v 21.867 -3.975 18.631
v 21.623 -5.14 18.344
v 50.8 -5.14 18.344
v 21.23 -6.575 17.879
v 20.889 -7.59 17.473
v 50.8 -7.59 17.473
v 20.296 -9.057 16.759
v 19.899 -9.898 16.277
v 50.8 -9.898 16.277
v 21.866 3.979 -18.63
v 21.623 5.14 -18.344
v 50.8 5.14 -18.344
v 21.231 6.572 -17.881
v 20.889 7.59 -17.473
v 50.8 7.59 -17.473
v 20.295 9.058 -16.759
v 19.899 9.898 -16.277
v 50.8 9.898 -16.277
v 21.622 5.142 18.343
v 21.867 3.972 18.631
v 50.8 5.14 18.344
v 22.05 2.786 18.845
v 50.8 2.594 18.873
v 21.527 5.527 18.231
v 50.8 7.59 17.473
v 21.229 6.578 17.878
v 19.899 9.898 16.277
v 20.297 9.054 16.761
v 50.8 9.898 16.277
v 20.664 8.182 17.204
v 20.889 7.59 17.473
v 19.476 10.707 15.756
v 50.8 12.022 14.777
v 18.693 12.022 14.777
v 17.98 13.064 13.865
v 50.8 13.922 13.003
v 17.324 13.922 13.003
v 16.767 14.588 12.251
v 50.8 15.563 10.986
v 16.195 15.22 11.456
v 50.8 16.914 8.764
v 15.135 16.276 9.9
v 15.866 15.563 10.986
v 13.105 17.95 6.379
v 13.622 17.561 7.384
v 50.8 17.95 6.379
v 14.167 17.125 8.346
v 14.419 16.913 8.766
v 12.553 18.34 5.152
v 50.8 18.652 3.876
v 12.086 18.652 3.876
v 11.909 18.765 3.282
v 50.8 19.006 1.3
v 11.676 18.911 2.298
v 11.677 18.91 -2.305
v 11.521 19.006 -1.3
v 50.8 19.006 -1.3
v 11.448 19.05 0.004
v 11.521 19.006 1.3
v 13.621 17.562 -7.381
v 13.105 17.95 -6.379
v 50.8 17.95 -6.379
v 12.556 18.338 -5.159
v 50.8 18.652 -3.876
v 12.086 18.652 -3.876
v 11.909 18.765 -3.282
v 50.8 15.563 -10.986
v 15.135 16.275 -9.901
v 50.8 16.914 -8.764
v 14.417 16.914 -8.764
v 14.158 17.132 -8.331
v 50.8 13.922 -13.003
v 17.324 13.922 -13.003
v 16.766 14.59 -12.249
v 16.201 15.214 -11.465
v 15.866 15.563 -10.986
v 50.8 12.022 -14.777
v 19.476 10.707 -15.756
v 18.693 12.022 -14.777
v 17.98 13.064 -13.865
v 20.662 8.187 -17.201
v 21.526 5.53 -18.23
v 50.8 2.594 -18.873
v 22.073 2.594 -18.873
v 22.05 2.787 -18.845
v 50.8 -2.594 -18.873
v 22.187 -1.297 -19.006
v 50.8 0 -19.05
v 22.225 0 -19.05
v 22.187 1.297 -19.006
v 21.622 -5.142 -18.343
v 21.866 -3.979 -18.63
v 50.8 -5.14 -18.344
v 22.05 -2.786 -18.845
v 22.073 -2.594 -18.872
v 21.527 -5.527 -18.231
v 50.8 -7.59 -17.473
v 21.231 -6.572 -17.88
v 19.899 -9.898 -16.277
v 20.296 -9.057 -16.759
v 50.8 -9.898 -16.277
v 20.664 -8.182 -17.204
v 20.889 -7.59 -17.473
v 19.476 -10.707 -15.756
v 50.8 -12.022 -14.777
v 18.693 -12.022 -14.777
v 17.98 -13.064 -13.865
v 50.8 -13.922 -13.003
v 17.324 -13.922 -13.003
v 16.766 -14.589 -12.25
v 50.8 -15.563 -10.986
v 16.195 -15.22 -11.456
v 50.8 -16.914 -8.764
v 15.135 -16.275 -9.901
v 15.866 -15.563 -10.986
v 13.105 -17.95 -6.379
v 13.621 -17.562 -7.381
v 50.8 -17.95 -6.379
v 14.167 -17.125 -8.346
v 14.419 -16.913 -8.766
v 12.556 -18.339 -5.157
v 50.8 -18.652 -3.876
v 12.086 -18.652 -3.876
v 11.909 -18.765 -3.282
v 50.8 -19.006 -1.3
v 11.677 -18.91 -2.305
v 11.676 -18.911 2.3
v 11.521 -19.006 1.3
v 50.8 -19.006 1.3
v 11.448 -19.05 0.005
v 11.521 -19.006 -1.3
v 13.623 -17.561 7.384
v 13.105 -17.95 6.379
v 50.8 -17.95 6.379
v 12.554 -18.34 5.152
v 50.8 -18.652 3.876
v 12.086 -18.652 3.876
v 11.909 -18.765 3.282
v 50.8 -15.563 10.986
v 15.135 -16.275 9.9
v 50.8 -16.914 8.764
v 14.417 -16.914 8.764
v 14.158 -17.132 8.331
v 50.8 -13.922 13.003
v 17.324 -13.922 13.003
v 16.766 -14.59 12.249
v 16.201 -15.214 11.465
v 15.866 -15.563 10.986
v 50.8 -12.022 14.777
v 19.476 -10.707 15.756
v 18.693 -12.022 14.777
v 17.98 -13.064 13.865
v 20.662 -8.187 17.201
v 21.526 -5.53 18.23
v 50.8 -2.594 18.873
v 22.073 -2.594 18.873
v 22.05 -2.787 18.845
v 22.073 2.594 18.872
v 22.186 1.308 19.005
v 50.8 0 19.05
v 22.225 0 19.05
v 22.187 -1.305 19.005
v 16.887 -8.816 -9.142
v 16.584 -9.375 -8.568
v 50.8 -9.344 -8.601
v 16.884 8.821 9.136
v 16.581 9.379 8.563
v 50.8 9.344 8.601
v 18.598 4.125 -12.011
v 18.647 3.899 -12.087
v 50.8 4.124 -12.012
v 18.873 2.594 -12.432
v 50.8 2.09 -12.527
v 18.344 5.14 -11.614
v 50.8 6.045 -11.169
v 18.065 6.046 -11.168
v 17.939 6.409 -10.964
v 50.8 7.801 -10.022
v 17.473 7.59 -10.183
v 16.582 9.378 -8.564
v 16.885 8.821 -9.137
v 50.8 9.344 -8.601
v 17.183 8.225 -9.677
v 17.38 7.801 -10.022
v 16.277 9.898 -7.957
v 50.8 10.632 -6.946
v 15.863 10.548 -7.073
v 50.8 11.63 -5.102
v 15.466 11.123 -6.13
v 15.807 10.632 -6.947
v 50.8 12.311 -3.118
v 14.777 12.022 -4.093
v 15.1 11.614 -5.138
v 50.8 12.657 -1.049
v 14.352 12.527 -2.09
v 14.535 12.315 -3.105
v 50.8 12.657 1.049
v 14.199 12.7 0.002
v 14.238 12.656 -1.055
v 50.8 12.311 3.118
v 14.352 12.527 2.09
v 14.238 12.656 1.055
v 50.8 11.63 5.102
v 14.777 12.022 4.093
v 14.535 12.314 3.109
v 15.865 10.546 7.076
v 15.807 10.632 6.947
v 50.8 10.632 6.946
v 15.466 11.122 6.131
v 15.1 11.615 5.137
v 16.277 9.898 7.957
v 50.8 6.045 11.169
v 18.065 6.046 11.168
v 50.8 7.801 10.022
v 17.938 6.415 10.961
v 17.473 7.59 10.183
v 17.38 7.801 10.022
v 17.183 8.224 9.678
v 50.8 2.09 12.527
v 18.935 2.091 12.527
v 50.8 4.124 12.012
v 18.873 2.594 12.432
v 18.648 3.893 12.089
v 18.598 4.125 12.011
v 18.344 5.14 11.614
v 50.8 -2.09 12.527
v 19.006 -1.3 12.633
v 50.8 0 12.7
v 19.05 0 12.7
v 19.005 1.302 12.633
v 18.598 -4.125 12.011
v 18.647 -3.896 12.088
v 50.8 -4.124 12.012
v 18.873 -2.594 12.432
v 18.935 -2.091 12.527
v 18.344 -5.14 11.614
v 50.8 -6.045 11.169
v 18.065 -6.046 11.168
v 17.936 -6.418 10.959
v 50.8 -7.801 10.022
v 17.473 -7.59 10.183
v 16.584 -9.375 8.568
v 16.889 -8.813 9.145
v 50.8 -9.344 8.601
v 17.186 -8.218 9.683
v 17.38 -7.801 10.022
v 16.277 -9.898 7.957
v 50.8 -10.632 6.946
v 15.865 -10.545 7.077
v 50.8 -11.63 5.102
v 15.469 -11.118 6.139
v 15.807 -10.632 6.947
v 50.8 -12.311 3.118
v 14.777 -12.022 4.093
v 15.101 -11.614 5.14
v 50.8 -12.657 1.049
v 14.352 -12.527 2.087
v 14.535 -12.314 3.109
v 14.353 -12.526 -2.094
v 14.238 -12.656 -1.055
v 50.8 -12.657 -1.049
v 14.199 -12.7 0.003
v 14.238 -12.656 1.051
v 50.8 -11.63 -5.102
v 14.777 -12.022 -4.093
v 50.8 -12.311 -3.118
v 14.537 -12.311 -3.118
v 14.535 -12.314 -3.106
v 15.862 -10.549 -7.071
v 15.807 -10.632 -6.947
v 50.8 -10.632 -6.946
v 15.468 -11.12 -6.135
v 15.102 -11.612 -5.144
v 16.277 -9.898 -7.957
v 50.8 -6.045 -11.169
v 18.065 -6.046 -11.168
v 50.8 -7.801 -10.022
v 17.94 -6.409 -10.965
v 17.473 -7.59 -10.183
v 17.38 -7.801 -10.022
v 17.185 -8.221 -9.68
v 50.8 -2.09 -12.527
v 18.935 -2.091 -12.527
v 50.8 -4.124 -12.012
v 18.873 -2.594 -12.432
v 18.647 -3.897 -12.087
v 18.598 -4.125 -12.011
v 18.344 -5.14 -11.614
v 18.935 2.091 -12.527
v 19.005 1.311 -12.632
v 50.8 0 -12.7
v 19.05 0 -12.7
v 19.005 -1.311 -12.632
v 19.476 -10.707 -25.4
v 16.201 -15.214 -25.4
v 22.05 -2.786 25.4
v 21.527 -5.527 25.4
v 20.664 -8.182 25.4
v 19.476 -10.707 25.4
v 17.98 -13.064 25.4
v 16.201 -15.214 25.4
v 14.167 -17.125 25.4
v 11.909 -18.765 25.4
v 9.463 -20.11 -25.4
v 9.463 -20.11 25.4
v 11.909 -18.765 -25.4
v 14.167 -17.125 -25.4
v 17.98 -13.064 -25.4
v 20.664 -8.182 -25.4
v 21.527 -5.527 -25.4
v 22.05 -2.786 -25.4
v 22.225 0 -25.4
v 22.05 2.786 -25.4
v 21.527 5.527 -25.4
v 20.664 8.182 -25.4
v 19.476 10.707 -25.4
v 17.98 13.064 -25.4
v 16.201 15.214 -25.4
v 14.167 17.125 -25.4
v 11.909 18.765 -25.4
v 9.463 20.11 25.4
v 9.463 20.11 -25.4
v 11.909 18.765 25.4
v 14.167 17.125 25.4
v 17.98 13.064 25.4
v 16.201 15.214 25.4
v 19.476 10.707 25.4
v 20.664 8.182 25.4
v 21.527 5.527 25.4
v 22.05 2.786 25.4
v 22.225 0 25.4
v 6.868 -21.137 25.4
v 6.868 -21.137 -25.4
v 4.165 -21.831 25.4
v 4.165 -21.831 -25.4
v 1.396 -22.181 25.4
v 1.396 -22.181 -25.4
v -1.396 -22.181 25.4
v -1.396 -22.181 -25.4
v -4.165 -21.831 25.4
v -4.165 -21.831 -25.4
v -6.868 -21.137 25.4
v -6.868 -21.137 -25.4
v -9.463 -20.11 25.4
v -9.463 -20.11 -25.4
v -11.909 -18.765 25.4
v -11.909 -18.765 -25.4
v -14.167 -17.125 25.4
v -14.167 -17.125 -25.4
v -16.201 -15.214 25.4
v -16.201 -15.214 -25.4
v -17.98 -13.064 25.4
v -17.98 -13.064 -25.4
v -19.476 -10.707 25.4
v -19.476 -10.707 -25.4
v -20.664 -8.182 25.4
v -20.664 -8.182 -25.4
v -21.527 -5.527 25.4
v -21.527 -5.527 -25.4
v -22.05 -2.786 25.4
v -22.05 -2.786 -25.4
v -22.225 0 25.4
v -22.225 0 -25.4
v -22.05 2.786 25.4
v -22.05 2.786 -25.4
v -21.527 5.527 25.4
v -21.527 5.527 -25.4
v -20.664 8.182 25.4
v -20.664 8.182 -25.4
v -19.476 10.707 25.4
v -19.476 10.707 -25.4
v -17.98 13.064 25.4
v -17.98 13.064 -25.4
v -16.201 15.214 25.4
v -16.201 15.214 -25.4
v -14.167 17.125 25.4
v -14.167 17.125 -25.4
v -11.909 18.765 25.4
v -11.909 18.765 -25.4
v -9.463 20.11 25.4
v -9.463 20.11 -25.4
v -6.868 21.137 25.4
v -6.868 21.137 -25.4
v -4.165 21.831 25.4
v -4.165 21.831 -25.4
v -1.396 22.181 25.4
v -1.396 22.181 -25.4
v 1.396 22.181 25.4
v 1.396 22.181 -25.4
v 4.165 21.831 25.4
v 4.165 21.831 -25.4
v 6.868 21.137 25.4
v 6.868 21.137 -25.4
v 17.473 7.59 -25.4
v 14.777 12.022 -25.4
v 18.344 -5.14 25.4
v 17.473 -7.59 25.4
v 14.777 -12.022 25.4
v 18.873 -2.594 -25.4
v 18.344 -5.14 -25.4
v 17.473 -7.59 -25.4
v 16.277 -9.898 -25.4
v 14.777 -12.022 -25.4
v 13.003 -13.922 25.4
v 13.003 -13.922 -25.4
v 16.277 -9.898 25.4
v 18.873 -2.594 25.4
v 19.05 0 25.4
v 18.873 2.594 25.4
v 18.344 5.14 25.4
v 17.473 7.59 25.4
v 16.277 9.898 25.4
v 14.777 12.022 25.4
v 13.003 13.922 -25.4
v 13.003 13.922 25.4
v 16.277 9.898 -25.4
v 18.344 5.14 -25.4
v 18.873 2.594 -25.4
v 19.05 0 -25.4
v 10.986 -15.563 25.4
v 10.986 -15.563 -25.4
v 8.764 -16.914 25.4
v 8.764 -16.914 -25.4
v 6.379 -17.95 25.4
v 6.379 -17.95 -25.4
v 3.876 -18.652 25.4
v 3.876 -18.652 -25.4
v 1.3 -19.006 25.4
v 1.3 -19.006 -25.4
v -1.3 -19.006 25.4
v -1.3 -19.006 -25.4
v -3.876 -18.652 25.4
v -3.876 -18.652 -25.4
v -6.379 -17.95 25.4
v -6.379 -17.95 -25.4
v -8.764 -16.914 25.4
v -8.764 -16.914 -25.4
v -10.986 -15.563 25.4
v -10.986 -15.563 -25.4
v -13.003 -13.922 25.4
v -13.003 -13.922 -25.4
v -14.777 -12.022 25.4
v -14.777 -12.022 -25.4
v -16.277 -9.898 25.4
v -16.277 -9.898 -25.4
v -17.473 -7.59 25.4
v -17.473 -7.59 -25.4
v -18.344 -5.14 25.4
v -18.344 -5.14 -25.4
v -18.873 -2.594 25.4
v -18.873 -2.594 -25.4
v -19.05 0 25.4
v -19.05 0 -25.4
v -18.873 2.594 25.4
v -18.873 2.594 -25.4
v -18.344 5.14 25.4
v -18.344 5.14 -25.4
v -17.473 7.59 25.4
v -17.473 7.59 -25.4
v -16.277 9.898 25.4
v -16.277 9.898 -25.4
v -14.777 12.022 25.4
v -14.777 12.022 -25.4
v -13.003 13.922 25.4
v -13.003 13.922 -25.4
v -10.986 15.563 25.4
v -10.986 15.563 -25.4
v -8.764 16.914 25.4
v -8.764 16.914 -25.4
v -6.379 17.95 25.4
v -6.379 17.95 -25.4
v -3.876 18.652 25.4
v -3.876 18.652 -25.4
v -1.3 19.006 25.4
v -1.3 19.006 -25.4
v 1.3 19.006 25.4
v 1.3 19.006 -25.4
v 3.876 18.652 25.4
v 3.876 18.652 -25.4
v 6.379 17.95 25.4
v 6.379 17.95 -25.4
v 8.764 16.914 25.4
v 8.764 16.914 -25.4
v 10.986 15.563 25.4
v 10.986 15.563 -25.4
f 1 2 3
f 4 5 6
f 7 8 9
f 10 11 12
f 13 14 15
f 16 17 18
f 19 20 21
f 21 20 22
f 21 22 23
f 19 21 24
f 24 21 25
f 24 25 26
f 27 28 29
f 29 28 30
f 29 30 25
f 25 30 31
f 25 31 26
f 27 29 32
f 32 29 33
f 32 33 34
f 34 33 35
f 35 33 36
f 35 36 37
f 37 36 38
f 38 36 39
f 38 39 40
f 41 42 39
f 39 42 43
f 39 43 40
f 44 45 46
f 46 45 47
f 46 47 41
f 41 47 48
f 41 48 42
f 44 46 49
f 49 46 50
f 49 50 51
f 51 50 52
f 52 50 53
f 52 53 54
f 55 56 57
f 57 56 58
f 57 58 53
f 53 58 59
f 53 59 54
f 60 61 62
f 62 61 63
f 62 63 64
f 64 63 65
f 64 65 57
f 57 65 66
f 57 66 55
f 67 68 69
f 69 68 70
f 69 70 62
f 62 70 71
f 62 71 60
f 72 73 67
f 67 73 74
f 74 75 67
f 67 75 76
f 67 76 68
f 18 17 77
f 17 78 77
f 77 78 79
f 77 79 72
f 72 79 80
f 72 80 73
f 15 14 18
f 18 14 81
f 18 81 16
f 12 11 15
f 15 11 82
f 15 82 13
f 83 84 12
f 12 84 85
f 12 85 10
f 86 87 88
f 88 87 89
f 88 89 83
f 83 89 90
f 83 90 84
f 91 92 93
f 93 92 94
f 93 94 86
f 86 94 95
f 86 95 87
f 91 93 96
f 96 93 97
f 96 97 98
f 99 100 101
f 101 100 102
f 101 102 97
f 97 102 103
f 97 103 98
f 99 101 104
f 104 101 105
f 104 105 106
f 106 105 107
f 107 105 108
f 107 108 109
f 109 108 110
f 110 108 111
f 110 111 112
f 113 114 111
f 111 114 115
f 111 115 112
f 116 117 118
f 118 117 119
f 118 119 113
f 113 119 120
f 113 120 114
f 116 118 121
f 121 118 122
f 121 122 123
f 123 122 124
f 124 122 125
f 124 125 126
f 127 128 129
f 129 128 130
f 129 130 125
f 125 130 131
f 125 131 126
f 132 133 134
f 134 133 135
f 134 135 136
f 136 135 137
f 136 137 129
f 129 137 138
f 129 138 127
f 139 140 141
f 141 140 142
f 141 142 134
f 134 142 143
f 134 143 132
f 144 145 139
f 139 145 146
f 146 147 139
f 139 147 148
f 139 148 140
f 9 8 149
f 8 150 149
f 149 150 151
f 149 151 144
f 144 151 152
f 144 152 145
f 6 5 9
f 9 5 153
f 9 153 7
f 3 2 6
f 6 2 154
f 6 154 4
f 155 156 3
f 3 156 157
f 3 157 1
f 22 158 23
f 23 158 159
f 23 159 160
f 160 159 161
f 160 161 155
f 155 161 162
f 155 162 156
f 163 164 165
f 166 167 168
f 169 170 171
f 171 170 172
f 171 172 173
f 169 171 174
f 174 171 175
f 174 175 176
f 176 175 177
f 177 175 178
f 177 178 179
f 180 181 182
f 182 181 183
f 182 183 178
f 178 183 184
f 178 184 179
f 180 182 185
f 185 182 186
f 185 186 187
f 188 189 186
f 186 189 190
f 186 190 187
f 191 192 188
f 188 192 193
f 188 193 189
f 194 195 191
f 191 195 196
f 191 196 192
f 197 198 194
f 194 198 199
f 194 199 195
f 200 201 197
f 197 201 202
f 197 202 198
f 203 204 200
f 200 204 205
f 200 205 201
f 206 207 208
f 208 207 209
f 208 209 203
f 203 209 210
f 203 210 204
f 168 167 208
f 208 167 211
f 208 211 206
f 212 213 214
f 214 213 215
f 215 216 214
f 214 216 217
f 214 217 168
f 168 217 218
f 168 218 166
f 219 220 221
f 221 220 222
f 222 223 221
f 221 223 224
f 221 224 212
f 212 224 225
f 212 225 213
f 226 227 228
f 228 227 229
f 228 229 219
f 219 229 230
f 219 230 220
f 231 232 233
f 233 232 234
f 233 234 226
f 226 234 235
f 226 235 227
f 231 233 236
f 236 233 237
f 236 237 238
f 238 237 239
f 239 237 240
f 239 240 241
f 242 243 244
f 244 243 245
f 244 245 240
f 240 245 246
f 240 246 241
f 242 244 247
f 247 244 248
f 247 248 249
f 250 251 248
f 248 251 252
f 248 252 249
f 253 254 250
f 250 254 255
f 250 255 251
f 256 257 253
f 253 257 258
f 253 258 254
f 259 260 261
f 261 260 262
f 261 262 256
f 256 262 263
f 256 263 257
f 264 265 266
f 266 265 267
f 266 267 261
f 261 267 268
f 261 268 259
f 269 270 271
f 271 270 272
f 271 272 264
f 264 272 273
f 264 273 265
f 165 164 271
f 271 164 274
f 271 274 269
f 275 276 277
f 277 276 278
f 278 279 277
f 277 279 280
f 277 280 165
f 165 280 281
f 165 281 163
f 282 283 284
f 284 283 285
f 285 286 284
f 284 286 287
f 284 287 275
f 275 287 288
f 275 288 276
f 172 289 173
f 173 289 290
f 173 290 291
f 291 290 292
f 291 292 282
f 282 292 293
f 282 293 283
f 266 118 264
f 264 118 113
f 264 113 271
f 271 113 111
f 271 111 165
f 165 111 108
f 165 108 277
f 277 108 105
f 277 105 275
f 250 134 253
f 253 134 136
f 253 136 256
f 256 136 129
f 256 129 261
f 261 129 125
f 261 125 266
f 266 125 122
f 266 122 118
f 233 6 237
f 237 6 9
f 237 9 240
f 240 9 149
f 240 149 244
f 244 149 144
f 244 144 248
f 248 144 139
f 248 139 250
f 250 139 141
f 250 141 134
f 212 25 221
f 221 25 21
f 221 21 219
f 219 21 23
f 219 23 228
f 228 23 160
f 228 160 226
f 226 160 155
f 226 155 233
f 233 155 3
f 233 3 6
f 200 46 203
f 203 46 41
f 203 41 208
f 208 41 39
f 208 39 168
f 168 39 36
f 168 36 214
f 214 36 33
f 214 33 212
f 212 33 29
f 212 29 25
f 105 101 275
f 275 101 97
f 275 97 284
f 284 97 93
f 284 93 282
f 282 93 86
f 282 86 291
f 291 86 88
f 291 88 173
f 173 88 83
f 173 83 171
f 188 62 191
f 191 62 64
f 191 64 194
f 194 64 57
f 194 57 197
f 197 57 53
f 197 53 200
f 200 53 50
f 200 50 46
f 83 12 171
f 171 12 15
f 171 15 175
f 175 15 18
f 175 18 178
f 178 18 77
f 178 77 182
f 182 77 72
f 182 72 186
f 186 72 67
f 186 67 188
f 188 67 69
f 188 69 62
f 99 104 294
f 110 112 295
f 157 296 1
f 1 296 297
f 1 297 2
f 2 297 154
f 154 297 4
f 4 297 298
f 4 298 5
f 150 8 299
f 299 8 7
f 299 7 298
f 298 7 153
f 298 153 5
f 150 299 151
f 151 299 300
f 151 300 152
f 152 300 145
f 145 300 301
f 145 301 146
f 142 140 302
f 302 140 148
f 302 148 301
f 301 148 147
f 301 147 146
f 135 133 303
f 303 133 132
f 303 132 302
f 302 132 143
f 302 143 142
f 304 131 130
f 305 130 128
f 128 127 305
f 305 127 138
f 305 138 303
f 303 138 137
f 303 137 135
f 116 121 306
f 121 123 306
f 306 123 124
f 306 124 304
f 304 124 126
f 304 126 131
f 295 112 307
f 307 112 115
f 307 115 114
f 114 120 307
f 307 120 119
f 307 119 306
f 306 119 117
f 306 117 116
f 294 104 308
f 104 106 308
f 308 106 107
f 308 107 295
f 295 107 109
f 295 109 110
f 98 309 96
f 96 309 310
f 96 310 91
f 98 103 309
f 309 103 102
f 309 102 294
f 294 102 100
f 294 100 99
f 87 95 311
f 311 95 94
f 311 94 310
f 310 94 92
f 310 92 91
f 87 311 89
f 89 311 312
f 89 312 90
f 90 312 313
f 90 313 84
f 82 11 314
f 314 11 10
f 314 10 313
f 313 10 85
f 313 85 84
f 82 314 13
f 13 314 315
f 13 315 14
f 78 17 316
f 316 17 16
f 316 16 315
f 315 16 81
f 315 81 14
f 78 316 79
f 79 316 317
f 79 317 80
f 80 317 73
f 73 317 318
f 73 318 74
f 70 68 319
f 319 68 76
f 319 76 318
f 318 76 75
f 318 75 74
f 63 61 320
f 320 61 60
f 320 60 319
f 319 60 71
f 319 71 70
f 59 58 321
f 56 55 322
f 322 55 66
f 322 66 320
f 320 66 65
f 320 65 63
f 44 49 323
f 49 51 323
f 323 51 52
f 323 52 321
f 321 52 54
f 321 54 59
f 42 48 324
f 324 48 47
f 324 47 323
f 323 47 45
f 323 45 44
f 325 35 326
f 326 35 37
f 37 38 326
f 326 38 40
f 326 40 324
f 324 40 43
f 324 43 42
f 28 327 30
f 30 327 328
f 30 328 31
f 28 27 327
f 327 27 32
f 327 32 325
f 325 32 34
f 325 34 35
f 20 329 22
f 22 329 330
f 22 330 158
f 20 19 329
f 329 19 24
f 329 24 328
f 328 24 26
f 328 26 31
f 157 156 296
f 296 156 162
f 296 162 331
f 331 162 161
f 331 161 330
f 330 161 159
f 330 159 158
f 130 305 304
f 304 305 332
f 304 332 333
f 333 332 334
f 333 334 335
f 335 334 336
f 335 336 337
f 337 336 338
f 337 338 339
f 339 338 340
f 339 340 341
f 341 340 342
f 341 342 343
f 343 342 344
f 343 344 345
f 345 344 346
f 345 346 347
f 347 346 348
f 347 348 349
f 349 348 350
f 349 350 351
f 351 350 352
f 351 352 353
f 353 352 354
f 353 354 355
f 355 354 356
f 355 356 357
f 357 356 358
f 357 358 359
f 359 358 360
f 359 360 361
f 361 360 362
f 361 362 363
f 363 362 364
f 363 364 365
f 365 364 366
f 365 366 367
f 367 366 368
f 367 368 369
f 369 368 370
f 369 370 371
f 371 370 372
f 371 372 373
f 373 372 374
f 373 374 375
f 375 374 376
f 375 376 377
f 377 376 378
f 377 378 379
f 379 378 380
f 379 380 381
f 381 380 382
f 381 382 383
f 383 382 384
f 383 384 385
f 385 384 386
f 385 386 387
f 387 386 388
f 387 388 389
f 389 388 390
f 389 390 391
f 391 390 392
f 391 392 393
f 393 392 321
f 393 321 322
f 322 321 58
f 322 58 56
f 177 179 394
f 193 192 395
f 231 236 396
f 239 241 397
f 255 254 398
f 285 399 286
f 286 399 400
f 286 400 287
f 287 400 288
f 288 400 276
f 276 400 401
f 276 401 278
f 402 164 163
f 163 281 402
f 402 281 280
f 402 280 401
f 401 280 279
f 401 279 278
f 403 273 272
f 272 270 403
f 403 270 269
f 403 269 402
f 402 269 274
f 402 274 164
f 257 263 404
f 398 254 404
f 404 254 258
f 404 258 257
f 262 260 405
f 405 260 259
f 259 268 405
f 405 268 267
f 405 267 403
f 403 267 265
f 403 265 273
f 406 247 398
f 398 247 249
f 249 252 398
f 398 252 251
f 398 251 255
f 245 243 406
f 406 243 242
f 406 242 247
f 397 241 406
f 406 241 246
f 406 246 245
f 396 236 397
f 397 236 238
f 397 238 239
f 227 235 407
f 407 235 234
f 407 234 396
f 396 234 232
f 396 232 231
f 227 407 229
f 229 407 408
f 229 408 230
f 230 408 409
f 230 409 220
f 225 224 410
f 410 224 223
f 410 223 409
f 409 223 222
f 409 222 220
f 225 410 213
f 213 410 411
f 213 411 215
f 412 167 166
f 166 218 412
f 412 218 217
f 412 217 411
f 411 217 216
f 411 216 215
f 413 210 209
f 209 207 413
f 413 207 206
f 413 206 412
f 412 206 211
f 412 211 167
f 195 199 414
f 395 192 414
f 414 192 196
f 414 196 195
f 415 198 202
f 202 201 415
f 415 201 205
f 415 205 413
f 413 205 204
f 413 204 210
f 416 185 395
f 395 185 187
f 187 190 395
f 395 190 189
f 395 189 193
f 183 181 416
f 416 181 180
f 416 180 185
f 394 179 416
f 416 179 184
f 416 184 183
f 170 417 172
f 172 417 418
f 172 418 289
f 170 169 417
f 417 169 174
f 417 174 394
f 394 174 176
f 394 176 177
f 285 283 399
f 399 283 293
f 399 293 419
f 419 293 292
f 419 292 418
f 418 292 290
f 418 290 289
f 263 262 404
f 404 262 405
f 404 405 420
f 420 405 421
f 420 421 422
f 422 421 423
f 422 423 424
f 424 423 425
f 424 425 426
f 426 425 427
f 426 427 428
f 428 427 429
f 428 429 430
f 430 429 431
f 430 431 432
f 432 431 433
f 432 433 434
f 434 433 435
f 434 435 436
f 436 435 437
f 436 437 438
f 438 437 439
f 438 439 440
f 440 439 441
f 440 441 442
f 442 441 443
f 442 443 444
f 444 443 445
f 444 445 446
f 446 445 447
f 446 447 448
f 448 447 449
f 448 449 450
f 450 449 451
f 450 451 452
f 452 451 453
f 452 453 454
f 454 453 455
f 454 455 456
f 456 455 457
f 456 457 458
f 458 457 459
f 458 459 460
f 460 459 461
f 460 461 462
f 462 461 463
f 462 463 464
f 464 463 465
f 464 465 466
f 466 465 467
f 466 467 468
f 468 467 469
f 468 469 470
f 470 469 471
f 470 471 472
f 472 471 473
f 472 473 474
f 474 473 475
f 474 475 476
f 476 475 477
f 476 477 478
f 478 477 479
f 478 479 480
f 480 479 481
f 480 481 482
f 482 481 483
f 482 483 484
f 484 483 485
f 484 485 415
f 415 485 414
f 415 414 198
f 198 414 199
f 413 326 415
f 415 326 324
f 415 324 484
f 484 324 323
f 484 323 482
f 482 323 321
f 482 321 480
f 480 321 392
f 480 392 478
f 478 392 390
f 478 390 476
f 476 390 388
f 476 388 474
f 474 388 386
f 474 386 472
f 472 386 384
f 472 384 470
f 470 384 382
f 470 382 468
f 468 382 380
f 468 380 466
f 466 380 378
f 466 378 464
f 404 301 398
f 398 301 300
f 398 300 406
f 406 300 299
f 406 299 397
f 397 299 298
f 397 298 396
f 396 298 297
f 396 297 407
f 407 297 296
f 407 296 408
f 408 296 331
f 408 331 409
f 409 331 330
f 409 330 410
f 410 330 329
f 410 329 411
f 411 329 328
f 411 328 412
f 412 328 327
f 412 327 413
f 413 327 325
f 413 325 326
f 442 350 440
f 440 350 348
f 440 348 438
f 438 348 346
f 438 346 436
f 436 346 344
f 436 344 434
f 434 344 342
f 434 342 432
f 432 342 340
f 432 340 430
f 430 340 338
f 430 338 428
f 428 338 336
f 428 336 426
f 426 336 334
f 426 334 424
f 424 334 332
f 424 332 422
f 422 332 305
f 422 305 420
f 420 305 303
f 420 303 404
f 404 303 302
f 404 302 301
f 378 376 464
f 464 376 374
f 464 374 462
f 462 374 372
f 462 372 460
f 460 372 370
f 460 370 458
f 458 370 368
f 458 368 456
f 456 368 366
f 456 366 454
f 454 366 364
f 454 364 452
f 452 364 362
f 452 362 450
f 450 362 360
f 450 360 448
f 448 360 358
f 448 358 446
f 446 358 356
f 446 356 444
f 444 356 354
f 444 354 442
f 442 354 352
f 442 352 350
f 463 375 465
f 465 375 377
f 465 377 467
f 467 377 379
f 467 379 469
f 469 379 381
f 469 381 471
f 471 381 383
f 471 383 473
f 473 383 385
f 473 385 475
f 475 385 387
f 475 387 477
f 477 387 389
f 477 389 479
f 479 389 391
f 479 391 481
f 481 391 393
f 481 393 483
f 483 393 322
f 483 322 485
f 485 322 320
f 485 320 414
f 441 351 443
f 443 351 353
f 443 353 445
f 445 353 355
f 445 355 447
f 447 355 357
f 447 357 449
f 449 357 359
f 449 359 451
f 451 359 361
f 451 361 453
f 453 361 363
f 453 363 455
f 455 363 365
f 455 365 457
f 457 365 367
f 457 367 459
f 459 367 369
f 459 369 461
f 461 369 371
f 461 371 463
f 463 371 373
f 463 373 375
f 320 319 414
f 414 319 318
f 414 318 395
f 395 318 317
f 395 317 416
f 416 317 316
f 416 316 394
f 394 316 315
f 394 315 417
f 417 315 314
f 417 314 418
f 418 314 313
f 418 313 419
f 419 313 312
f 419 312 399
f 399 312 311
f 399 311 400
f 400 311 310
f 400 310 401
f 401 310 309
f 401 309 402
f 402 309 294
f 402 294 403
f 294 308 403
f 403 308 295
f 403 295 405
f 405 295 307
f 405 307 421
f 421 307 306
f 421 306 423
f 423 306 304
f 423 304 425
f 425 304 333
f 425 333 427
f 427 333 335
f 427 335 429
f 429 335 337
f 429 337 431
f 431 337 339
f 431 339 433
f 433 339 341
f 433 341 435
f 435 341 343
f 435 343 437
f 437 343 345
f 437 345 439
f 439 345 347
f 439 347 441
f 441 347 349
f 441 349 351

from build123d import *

# Parameters (mm, degrees)
SKETCH1_R           = 19.05
SKETCH1_R_2         = 12.7
BOSS_EXTRUDE1_DEPTH = 50.8
SKETCH2_R           = 22.225
SKETCH2_R_2         = 19.05
BOSS_EXTRUDE2_DEPTH = 25.4
CUT_EXTRUDE1_START  = -50.8
SKETCH3_R           = 19.05
CUT_EXTRUDE1_DEPTH  = 50.8
CUT_EXTRUDE2_START  = -50.8
SKETCH4_R           = 12.7
CUT_EXTRUDE2_DEPTH  = 50.8


with BuildPart() as part:
    # Sketch1 → Boss-Extrude1 (new body)
    with BuildSketch(Plane.YZ):
        with Locations(Location((0, 0, 0), (0, 0, 270))):
            Circle(SKETCH1_R)
        with Locations(Location((0, 0, 0), (0, 0, 270))):
            Circle(SKETCH1_R_2, mode=Mode.SUBTRACT)
    extrude(amount=BOSS_EXTRUDE1_DEPTH)

    # Sketch2 → Boss-Extrude2 (add, symmetric)
    with BuildSketch(Plane(origin=(0, 0, 0), x_dir=(0, 1, 0), z_dir=(0, 0, 1))):
        with Locations(Location((0, 0, 0), (0, 0, 270))):
            Circle(SKETCH2_R)
        with Locations(Location((0, 0, 0), (0, 0, 270))):
            Circle(SKETCH2_R_2, mode=Mode.SUBTRACT)
    extrude(amount=BOSS_EXTRUDE2_DEPTH, both=True)

    # Sketch3 → Cut-Extrude1 (cut)
    with BuildSketch(Plane.XY.offset(25.4).offset(CUT_EXTRUDE1_START)):
        Circle(SKETCH3_R)
    extrude(amount=CUT_EXTRUDE1_DEPTH, mode=Mode.SUBTRACT)

    # Sketch4 → Cut-Extrude2 (cut)
    with BuildSketch(Plane.YZ.offset(50.8).offset(CUT_EXTRUDE2_START)):
        with Locations(Location((0, 0, 0), (0, 0, 270))):
            Circle(SKETCH4_R)
    extrude(amount=CUT_EXTRUDE2_DEPTH, mode=Mode.SUBTRACT)


solid = part.part
